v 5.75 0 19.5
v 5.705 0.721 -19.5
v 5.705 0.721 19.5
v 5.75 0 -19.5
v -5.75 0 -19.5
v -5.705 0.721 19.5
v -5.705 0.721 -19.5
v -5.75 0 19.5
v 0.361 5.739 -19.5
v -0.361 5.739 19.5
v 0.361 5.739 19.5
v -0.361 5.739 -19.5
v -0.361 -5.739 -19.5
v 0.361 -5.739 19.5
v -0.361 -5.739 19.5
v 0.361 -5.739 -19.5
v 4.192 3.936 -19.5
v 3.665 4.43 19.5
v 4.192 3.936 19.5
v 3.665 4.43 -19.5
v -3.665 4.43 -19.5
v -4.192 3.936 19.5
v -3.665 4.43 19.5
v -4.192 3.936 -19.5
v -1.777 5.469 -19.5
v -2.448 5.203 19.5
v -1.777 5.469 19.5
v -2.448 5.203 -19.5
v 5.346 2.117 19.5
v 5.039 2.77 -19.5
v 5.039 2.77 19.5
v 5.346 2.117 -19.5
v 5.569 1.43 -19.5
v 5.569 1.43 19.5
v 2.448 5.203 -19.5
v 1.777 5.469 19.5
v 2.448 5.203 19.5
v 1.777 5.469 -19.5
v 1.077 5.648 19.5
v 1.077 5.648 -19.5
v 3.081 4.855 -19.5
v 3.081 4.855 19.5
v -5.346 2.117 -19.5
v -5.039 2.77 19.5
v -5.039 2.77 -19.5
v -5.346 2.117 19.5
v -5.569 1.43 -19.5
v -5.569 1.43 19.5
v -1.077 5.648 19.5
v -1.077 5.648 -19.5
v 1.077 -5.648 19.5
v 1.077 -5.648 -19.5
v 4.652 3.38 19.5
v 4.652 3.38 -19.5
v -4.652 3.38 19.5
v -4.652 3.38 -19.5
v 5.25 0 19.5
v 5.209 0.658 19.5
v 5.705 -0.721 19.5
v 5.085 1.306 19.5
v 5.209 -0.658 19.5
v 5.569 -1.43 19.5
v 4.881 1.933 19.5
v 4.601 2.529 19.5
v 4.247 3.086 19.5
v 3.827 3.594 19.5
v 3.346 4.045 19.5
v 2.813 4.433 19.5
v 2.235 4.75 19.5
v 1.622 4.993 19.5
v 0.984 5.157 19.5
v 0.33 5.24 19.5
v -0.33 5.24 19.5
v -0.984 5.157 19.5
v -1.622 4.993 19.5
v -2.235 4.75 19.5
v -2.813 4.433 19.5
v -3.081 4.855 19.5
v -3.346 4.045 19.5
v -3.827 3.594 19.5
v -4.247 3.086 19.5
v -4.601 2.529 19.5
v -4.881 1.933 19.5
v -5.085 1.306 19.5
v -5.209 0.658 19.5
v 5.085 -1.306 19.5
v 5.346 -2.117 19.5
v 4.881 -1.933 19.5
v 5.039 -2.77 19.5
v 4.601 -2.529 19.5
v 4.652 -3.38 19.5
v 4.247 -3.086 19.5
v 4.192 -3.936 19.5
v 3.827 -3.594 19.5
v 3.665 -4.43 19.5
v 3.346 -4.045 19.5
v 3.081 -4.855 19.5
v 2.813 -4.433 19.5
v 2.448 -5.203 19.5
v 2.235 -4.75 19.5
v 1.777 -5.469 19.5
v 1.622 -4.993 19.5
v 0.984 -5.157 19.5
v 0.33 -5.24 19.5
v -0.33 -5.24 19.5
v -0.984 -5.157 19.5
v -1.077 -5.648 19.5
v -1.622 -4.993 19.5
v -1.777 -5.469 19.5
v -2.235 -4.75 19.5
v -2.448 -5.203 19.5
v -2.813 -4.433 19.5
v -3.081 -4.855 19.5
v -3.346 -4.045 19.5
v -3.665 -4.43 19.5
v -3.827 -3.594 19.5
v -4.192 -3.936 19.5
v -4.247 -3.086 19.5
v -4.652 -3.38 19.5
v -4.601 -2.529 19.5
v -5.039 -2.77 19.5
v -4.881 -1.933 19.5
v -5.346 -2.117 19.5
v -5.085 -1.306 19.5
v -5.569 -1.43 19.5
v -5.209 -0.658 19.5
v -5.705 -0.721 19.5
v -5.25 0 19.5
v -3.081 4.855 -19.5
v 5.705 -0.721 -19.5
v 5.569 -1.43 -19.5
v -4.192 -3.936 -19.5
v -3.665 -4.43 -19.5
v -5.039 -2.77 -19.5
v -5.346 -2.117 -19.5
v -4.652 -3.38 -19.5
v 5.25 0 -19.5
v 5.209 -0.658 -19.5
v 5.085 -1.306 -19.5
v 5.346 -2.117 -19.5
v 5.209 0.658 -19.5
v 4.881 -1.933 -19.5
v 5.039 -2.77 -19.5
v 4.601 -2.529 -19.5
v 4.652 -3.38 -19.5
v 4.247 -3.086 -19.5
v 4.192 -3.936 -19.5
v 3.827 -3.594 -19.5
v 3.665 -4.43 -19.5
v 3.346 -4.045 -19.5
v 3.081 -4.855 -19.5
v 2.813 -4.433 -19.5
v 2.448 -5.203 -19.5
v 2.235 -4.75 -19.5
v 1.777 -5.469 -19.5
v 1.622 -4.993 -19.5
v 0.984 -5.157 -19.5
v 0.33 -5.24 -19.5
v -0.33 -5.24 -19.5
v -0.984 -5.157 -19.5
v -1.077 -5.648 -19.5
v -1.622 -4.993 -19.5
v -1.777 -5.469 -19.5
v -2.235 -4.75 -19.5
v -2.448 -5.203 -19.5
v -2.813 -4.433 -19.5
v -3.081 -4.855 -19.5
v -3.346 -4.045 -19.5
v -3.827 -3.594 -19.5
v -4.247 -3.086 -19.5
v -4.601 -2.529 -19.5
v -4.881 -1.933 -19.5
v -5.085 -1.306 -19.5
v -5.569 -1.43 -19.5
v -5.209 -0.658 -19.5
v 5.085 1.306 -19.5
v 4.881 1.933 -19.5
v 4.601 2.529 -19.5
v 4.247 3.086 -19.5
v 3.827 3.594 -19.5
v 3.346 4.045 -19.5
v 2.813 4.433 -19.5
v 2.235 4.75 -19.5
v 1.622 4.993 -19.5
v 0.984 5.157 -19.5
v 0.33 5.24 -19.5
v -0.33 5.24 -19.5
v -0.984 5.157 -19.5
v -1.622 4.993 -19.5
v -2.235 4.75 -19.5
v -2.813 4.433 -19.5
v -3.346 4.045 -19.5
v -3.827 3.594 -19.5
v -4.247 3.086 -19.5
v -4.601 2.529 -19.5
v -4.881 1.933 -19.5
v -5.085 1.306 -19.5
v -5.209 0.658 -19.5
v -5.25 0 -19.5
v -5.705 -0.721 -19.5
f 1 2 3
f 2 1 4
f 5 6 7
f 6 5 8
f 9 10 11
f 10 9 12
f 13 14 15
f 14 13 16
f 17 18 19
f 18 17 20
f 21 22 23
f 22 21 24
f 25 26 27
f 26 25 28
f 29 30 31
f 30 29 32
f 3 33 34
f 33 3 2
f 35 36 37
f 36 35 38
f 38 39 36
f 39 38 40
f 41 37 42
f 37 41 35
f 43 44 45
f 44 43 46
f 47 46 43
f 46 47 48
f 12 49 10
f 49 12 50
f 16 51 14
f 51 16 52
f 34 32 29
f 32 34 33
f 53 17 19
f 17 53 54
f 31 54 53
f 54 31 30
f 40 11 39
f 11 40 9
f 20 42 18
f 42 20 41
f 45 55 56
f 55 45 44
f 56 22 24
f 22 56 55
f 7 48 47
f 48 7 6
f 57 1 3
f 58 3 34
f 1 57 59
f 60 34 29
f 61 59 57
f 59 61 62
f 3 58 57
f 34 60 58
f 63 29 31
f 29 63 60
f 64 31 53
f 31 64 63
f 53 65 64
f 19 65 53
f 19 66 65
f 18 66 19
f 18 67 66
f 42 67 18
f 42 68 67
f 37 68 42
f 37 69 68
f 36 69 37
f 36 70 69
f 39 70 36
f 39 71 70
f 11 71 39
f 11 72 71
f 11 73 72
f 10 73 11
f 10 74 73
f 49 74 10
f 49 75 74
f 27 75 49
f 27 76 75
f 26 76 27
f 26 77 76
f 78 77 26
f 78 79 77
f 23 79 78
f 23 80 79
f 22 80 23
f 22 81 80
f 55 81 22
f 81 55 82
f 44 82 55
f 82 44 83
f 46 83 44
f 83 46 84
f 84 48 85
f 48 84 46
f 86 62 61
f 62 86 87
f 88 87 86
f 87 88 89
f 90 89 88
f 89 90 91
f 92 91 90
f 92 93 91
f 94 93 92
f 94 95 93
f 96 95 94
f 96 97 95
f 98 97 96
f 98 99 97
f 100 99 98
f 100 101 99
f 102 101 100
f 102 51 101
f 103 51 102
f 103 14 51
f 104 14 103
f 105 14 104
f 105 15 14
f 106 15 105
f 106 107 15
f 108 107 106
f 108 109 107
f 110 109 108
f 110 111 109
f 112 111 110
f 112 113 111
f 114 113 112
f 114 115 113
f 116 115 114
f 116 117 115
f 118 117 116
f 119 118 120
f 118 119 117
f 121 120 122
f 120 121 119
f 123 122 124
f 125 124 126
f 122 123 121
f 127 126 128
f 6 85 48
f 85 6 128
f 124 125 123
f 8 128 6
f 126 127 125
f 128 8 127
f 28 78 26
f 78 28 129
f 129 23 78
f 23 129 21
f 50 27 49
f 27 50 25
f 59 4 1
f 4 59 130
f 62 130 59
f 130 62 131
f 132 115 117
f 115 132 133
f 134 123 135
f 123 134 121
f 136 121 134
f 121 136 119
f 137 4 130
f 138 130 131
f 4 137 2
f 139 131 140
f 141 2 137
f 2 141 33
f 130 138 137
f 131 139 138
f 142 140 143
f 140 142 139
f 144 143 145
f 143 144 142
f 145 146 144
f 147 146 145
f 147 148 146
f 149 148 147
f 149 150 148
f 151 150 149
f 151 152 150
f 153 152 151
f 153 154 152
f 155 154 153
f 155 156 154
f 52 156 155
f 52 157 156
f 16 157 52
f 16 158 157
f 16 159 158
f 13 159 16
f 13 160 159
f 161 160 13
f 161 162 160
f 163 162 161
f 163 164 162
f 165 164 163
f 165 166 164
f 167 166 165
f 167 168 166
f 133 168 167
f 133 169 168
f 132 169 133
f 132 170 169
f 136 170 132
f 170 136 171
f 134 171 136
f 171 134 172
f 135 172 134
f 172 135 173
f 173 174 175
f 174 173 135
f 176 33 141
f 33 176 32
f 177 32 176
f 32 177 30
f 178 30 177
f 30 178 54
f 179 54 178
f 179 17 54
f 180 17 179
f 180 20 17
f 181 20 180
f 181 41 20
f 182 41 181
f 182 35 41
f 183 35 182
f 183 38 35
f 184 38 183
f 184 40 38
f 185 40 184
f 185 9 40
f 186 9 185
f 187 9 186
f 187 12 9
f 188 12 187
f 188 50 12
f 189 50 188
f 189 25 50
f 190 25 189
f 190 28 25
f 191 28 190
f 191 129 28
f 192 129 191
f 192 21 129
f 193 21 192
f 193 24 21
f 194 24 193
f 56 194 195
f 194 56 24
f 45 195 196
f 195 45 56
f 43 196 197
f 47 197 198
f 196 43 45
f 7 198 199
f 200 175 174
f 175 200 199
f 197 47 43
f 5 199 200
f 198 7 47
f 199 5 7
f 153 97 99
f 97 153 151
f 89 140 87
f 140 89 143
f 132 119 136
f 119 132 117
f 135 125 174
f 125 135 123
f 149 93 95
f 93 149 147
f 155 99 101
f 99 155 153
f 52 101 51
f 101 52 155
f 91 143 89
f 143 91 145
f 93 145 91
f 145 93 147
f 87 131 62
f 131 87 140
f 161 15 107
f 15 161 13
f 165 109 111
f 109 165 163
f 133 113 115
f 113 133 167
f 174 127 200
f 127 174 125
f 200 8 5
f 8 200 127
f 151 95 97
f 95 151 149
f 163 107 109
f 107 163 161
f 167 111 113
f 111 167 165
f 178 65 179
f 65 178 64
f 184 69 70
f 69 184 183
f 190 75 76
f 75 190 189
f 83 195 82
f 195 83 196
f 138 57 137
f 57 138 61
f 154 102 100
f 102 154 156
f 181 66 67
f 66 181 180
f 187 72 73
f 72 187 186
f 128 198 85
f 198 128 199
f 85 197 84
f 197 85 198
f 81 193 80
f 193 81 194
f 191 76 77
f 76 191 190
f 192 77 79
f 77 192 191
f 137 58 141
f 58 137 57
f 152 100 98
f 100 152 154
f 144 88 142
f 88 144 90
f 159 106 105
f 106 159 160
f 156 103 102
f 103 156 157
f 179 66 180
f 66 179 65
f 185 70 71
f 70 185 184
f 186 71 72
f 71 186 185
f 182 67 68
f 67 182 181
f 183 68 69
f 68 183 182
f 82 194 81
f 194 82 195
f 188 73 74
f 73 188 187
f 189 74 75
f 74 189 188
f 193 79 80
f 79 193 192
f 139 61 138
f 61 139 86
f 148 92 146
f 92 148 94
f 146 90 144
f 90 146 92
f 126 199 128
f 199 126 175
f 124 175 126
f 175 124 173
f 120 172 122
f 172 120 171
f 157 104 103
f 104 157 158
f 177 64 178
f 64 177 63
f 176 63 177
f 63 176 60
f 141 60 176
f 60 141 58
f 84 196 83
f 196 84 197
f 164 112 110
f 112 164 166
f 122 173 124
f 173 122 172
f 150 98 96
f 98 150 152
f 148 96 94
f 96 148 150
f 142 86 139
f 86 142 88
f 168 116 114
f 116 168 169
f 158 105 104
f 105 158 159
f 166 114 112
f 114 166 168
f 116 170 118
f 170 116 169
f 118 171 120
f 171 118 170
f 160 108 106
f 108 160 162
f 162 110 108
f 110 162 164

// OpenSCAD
$fn = 50;


difference() {
	union() {
		translate(v = [0, 0, -19.5000000000]) {
			cylinder(h = 39, r = 5.7500000000);
		}
	}
	union() {
		translate(v = [0, 0, -100.0000000000]) {
			cylinder(h = 200, r = 5.2500000000);
		}
	}
}
